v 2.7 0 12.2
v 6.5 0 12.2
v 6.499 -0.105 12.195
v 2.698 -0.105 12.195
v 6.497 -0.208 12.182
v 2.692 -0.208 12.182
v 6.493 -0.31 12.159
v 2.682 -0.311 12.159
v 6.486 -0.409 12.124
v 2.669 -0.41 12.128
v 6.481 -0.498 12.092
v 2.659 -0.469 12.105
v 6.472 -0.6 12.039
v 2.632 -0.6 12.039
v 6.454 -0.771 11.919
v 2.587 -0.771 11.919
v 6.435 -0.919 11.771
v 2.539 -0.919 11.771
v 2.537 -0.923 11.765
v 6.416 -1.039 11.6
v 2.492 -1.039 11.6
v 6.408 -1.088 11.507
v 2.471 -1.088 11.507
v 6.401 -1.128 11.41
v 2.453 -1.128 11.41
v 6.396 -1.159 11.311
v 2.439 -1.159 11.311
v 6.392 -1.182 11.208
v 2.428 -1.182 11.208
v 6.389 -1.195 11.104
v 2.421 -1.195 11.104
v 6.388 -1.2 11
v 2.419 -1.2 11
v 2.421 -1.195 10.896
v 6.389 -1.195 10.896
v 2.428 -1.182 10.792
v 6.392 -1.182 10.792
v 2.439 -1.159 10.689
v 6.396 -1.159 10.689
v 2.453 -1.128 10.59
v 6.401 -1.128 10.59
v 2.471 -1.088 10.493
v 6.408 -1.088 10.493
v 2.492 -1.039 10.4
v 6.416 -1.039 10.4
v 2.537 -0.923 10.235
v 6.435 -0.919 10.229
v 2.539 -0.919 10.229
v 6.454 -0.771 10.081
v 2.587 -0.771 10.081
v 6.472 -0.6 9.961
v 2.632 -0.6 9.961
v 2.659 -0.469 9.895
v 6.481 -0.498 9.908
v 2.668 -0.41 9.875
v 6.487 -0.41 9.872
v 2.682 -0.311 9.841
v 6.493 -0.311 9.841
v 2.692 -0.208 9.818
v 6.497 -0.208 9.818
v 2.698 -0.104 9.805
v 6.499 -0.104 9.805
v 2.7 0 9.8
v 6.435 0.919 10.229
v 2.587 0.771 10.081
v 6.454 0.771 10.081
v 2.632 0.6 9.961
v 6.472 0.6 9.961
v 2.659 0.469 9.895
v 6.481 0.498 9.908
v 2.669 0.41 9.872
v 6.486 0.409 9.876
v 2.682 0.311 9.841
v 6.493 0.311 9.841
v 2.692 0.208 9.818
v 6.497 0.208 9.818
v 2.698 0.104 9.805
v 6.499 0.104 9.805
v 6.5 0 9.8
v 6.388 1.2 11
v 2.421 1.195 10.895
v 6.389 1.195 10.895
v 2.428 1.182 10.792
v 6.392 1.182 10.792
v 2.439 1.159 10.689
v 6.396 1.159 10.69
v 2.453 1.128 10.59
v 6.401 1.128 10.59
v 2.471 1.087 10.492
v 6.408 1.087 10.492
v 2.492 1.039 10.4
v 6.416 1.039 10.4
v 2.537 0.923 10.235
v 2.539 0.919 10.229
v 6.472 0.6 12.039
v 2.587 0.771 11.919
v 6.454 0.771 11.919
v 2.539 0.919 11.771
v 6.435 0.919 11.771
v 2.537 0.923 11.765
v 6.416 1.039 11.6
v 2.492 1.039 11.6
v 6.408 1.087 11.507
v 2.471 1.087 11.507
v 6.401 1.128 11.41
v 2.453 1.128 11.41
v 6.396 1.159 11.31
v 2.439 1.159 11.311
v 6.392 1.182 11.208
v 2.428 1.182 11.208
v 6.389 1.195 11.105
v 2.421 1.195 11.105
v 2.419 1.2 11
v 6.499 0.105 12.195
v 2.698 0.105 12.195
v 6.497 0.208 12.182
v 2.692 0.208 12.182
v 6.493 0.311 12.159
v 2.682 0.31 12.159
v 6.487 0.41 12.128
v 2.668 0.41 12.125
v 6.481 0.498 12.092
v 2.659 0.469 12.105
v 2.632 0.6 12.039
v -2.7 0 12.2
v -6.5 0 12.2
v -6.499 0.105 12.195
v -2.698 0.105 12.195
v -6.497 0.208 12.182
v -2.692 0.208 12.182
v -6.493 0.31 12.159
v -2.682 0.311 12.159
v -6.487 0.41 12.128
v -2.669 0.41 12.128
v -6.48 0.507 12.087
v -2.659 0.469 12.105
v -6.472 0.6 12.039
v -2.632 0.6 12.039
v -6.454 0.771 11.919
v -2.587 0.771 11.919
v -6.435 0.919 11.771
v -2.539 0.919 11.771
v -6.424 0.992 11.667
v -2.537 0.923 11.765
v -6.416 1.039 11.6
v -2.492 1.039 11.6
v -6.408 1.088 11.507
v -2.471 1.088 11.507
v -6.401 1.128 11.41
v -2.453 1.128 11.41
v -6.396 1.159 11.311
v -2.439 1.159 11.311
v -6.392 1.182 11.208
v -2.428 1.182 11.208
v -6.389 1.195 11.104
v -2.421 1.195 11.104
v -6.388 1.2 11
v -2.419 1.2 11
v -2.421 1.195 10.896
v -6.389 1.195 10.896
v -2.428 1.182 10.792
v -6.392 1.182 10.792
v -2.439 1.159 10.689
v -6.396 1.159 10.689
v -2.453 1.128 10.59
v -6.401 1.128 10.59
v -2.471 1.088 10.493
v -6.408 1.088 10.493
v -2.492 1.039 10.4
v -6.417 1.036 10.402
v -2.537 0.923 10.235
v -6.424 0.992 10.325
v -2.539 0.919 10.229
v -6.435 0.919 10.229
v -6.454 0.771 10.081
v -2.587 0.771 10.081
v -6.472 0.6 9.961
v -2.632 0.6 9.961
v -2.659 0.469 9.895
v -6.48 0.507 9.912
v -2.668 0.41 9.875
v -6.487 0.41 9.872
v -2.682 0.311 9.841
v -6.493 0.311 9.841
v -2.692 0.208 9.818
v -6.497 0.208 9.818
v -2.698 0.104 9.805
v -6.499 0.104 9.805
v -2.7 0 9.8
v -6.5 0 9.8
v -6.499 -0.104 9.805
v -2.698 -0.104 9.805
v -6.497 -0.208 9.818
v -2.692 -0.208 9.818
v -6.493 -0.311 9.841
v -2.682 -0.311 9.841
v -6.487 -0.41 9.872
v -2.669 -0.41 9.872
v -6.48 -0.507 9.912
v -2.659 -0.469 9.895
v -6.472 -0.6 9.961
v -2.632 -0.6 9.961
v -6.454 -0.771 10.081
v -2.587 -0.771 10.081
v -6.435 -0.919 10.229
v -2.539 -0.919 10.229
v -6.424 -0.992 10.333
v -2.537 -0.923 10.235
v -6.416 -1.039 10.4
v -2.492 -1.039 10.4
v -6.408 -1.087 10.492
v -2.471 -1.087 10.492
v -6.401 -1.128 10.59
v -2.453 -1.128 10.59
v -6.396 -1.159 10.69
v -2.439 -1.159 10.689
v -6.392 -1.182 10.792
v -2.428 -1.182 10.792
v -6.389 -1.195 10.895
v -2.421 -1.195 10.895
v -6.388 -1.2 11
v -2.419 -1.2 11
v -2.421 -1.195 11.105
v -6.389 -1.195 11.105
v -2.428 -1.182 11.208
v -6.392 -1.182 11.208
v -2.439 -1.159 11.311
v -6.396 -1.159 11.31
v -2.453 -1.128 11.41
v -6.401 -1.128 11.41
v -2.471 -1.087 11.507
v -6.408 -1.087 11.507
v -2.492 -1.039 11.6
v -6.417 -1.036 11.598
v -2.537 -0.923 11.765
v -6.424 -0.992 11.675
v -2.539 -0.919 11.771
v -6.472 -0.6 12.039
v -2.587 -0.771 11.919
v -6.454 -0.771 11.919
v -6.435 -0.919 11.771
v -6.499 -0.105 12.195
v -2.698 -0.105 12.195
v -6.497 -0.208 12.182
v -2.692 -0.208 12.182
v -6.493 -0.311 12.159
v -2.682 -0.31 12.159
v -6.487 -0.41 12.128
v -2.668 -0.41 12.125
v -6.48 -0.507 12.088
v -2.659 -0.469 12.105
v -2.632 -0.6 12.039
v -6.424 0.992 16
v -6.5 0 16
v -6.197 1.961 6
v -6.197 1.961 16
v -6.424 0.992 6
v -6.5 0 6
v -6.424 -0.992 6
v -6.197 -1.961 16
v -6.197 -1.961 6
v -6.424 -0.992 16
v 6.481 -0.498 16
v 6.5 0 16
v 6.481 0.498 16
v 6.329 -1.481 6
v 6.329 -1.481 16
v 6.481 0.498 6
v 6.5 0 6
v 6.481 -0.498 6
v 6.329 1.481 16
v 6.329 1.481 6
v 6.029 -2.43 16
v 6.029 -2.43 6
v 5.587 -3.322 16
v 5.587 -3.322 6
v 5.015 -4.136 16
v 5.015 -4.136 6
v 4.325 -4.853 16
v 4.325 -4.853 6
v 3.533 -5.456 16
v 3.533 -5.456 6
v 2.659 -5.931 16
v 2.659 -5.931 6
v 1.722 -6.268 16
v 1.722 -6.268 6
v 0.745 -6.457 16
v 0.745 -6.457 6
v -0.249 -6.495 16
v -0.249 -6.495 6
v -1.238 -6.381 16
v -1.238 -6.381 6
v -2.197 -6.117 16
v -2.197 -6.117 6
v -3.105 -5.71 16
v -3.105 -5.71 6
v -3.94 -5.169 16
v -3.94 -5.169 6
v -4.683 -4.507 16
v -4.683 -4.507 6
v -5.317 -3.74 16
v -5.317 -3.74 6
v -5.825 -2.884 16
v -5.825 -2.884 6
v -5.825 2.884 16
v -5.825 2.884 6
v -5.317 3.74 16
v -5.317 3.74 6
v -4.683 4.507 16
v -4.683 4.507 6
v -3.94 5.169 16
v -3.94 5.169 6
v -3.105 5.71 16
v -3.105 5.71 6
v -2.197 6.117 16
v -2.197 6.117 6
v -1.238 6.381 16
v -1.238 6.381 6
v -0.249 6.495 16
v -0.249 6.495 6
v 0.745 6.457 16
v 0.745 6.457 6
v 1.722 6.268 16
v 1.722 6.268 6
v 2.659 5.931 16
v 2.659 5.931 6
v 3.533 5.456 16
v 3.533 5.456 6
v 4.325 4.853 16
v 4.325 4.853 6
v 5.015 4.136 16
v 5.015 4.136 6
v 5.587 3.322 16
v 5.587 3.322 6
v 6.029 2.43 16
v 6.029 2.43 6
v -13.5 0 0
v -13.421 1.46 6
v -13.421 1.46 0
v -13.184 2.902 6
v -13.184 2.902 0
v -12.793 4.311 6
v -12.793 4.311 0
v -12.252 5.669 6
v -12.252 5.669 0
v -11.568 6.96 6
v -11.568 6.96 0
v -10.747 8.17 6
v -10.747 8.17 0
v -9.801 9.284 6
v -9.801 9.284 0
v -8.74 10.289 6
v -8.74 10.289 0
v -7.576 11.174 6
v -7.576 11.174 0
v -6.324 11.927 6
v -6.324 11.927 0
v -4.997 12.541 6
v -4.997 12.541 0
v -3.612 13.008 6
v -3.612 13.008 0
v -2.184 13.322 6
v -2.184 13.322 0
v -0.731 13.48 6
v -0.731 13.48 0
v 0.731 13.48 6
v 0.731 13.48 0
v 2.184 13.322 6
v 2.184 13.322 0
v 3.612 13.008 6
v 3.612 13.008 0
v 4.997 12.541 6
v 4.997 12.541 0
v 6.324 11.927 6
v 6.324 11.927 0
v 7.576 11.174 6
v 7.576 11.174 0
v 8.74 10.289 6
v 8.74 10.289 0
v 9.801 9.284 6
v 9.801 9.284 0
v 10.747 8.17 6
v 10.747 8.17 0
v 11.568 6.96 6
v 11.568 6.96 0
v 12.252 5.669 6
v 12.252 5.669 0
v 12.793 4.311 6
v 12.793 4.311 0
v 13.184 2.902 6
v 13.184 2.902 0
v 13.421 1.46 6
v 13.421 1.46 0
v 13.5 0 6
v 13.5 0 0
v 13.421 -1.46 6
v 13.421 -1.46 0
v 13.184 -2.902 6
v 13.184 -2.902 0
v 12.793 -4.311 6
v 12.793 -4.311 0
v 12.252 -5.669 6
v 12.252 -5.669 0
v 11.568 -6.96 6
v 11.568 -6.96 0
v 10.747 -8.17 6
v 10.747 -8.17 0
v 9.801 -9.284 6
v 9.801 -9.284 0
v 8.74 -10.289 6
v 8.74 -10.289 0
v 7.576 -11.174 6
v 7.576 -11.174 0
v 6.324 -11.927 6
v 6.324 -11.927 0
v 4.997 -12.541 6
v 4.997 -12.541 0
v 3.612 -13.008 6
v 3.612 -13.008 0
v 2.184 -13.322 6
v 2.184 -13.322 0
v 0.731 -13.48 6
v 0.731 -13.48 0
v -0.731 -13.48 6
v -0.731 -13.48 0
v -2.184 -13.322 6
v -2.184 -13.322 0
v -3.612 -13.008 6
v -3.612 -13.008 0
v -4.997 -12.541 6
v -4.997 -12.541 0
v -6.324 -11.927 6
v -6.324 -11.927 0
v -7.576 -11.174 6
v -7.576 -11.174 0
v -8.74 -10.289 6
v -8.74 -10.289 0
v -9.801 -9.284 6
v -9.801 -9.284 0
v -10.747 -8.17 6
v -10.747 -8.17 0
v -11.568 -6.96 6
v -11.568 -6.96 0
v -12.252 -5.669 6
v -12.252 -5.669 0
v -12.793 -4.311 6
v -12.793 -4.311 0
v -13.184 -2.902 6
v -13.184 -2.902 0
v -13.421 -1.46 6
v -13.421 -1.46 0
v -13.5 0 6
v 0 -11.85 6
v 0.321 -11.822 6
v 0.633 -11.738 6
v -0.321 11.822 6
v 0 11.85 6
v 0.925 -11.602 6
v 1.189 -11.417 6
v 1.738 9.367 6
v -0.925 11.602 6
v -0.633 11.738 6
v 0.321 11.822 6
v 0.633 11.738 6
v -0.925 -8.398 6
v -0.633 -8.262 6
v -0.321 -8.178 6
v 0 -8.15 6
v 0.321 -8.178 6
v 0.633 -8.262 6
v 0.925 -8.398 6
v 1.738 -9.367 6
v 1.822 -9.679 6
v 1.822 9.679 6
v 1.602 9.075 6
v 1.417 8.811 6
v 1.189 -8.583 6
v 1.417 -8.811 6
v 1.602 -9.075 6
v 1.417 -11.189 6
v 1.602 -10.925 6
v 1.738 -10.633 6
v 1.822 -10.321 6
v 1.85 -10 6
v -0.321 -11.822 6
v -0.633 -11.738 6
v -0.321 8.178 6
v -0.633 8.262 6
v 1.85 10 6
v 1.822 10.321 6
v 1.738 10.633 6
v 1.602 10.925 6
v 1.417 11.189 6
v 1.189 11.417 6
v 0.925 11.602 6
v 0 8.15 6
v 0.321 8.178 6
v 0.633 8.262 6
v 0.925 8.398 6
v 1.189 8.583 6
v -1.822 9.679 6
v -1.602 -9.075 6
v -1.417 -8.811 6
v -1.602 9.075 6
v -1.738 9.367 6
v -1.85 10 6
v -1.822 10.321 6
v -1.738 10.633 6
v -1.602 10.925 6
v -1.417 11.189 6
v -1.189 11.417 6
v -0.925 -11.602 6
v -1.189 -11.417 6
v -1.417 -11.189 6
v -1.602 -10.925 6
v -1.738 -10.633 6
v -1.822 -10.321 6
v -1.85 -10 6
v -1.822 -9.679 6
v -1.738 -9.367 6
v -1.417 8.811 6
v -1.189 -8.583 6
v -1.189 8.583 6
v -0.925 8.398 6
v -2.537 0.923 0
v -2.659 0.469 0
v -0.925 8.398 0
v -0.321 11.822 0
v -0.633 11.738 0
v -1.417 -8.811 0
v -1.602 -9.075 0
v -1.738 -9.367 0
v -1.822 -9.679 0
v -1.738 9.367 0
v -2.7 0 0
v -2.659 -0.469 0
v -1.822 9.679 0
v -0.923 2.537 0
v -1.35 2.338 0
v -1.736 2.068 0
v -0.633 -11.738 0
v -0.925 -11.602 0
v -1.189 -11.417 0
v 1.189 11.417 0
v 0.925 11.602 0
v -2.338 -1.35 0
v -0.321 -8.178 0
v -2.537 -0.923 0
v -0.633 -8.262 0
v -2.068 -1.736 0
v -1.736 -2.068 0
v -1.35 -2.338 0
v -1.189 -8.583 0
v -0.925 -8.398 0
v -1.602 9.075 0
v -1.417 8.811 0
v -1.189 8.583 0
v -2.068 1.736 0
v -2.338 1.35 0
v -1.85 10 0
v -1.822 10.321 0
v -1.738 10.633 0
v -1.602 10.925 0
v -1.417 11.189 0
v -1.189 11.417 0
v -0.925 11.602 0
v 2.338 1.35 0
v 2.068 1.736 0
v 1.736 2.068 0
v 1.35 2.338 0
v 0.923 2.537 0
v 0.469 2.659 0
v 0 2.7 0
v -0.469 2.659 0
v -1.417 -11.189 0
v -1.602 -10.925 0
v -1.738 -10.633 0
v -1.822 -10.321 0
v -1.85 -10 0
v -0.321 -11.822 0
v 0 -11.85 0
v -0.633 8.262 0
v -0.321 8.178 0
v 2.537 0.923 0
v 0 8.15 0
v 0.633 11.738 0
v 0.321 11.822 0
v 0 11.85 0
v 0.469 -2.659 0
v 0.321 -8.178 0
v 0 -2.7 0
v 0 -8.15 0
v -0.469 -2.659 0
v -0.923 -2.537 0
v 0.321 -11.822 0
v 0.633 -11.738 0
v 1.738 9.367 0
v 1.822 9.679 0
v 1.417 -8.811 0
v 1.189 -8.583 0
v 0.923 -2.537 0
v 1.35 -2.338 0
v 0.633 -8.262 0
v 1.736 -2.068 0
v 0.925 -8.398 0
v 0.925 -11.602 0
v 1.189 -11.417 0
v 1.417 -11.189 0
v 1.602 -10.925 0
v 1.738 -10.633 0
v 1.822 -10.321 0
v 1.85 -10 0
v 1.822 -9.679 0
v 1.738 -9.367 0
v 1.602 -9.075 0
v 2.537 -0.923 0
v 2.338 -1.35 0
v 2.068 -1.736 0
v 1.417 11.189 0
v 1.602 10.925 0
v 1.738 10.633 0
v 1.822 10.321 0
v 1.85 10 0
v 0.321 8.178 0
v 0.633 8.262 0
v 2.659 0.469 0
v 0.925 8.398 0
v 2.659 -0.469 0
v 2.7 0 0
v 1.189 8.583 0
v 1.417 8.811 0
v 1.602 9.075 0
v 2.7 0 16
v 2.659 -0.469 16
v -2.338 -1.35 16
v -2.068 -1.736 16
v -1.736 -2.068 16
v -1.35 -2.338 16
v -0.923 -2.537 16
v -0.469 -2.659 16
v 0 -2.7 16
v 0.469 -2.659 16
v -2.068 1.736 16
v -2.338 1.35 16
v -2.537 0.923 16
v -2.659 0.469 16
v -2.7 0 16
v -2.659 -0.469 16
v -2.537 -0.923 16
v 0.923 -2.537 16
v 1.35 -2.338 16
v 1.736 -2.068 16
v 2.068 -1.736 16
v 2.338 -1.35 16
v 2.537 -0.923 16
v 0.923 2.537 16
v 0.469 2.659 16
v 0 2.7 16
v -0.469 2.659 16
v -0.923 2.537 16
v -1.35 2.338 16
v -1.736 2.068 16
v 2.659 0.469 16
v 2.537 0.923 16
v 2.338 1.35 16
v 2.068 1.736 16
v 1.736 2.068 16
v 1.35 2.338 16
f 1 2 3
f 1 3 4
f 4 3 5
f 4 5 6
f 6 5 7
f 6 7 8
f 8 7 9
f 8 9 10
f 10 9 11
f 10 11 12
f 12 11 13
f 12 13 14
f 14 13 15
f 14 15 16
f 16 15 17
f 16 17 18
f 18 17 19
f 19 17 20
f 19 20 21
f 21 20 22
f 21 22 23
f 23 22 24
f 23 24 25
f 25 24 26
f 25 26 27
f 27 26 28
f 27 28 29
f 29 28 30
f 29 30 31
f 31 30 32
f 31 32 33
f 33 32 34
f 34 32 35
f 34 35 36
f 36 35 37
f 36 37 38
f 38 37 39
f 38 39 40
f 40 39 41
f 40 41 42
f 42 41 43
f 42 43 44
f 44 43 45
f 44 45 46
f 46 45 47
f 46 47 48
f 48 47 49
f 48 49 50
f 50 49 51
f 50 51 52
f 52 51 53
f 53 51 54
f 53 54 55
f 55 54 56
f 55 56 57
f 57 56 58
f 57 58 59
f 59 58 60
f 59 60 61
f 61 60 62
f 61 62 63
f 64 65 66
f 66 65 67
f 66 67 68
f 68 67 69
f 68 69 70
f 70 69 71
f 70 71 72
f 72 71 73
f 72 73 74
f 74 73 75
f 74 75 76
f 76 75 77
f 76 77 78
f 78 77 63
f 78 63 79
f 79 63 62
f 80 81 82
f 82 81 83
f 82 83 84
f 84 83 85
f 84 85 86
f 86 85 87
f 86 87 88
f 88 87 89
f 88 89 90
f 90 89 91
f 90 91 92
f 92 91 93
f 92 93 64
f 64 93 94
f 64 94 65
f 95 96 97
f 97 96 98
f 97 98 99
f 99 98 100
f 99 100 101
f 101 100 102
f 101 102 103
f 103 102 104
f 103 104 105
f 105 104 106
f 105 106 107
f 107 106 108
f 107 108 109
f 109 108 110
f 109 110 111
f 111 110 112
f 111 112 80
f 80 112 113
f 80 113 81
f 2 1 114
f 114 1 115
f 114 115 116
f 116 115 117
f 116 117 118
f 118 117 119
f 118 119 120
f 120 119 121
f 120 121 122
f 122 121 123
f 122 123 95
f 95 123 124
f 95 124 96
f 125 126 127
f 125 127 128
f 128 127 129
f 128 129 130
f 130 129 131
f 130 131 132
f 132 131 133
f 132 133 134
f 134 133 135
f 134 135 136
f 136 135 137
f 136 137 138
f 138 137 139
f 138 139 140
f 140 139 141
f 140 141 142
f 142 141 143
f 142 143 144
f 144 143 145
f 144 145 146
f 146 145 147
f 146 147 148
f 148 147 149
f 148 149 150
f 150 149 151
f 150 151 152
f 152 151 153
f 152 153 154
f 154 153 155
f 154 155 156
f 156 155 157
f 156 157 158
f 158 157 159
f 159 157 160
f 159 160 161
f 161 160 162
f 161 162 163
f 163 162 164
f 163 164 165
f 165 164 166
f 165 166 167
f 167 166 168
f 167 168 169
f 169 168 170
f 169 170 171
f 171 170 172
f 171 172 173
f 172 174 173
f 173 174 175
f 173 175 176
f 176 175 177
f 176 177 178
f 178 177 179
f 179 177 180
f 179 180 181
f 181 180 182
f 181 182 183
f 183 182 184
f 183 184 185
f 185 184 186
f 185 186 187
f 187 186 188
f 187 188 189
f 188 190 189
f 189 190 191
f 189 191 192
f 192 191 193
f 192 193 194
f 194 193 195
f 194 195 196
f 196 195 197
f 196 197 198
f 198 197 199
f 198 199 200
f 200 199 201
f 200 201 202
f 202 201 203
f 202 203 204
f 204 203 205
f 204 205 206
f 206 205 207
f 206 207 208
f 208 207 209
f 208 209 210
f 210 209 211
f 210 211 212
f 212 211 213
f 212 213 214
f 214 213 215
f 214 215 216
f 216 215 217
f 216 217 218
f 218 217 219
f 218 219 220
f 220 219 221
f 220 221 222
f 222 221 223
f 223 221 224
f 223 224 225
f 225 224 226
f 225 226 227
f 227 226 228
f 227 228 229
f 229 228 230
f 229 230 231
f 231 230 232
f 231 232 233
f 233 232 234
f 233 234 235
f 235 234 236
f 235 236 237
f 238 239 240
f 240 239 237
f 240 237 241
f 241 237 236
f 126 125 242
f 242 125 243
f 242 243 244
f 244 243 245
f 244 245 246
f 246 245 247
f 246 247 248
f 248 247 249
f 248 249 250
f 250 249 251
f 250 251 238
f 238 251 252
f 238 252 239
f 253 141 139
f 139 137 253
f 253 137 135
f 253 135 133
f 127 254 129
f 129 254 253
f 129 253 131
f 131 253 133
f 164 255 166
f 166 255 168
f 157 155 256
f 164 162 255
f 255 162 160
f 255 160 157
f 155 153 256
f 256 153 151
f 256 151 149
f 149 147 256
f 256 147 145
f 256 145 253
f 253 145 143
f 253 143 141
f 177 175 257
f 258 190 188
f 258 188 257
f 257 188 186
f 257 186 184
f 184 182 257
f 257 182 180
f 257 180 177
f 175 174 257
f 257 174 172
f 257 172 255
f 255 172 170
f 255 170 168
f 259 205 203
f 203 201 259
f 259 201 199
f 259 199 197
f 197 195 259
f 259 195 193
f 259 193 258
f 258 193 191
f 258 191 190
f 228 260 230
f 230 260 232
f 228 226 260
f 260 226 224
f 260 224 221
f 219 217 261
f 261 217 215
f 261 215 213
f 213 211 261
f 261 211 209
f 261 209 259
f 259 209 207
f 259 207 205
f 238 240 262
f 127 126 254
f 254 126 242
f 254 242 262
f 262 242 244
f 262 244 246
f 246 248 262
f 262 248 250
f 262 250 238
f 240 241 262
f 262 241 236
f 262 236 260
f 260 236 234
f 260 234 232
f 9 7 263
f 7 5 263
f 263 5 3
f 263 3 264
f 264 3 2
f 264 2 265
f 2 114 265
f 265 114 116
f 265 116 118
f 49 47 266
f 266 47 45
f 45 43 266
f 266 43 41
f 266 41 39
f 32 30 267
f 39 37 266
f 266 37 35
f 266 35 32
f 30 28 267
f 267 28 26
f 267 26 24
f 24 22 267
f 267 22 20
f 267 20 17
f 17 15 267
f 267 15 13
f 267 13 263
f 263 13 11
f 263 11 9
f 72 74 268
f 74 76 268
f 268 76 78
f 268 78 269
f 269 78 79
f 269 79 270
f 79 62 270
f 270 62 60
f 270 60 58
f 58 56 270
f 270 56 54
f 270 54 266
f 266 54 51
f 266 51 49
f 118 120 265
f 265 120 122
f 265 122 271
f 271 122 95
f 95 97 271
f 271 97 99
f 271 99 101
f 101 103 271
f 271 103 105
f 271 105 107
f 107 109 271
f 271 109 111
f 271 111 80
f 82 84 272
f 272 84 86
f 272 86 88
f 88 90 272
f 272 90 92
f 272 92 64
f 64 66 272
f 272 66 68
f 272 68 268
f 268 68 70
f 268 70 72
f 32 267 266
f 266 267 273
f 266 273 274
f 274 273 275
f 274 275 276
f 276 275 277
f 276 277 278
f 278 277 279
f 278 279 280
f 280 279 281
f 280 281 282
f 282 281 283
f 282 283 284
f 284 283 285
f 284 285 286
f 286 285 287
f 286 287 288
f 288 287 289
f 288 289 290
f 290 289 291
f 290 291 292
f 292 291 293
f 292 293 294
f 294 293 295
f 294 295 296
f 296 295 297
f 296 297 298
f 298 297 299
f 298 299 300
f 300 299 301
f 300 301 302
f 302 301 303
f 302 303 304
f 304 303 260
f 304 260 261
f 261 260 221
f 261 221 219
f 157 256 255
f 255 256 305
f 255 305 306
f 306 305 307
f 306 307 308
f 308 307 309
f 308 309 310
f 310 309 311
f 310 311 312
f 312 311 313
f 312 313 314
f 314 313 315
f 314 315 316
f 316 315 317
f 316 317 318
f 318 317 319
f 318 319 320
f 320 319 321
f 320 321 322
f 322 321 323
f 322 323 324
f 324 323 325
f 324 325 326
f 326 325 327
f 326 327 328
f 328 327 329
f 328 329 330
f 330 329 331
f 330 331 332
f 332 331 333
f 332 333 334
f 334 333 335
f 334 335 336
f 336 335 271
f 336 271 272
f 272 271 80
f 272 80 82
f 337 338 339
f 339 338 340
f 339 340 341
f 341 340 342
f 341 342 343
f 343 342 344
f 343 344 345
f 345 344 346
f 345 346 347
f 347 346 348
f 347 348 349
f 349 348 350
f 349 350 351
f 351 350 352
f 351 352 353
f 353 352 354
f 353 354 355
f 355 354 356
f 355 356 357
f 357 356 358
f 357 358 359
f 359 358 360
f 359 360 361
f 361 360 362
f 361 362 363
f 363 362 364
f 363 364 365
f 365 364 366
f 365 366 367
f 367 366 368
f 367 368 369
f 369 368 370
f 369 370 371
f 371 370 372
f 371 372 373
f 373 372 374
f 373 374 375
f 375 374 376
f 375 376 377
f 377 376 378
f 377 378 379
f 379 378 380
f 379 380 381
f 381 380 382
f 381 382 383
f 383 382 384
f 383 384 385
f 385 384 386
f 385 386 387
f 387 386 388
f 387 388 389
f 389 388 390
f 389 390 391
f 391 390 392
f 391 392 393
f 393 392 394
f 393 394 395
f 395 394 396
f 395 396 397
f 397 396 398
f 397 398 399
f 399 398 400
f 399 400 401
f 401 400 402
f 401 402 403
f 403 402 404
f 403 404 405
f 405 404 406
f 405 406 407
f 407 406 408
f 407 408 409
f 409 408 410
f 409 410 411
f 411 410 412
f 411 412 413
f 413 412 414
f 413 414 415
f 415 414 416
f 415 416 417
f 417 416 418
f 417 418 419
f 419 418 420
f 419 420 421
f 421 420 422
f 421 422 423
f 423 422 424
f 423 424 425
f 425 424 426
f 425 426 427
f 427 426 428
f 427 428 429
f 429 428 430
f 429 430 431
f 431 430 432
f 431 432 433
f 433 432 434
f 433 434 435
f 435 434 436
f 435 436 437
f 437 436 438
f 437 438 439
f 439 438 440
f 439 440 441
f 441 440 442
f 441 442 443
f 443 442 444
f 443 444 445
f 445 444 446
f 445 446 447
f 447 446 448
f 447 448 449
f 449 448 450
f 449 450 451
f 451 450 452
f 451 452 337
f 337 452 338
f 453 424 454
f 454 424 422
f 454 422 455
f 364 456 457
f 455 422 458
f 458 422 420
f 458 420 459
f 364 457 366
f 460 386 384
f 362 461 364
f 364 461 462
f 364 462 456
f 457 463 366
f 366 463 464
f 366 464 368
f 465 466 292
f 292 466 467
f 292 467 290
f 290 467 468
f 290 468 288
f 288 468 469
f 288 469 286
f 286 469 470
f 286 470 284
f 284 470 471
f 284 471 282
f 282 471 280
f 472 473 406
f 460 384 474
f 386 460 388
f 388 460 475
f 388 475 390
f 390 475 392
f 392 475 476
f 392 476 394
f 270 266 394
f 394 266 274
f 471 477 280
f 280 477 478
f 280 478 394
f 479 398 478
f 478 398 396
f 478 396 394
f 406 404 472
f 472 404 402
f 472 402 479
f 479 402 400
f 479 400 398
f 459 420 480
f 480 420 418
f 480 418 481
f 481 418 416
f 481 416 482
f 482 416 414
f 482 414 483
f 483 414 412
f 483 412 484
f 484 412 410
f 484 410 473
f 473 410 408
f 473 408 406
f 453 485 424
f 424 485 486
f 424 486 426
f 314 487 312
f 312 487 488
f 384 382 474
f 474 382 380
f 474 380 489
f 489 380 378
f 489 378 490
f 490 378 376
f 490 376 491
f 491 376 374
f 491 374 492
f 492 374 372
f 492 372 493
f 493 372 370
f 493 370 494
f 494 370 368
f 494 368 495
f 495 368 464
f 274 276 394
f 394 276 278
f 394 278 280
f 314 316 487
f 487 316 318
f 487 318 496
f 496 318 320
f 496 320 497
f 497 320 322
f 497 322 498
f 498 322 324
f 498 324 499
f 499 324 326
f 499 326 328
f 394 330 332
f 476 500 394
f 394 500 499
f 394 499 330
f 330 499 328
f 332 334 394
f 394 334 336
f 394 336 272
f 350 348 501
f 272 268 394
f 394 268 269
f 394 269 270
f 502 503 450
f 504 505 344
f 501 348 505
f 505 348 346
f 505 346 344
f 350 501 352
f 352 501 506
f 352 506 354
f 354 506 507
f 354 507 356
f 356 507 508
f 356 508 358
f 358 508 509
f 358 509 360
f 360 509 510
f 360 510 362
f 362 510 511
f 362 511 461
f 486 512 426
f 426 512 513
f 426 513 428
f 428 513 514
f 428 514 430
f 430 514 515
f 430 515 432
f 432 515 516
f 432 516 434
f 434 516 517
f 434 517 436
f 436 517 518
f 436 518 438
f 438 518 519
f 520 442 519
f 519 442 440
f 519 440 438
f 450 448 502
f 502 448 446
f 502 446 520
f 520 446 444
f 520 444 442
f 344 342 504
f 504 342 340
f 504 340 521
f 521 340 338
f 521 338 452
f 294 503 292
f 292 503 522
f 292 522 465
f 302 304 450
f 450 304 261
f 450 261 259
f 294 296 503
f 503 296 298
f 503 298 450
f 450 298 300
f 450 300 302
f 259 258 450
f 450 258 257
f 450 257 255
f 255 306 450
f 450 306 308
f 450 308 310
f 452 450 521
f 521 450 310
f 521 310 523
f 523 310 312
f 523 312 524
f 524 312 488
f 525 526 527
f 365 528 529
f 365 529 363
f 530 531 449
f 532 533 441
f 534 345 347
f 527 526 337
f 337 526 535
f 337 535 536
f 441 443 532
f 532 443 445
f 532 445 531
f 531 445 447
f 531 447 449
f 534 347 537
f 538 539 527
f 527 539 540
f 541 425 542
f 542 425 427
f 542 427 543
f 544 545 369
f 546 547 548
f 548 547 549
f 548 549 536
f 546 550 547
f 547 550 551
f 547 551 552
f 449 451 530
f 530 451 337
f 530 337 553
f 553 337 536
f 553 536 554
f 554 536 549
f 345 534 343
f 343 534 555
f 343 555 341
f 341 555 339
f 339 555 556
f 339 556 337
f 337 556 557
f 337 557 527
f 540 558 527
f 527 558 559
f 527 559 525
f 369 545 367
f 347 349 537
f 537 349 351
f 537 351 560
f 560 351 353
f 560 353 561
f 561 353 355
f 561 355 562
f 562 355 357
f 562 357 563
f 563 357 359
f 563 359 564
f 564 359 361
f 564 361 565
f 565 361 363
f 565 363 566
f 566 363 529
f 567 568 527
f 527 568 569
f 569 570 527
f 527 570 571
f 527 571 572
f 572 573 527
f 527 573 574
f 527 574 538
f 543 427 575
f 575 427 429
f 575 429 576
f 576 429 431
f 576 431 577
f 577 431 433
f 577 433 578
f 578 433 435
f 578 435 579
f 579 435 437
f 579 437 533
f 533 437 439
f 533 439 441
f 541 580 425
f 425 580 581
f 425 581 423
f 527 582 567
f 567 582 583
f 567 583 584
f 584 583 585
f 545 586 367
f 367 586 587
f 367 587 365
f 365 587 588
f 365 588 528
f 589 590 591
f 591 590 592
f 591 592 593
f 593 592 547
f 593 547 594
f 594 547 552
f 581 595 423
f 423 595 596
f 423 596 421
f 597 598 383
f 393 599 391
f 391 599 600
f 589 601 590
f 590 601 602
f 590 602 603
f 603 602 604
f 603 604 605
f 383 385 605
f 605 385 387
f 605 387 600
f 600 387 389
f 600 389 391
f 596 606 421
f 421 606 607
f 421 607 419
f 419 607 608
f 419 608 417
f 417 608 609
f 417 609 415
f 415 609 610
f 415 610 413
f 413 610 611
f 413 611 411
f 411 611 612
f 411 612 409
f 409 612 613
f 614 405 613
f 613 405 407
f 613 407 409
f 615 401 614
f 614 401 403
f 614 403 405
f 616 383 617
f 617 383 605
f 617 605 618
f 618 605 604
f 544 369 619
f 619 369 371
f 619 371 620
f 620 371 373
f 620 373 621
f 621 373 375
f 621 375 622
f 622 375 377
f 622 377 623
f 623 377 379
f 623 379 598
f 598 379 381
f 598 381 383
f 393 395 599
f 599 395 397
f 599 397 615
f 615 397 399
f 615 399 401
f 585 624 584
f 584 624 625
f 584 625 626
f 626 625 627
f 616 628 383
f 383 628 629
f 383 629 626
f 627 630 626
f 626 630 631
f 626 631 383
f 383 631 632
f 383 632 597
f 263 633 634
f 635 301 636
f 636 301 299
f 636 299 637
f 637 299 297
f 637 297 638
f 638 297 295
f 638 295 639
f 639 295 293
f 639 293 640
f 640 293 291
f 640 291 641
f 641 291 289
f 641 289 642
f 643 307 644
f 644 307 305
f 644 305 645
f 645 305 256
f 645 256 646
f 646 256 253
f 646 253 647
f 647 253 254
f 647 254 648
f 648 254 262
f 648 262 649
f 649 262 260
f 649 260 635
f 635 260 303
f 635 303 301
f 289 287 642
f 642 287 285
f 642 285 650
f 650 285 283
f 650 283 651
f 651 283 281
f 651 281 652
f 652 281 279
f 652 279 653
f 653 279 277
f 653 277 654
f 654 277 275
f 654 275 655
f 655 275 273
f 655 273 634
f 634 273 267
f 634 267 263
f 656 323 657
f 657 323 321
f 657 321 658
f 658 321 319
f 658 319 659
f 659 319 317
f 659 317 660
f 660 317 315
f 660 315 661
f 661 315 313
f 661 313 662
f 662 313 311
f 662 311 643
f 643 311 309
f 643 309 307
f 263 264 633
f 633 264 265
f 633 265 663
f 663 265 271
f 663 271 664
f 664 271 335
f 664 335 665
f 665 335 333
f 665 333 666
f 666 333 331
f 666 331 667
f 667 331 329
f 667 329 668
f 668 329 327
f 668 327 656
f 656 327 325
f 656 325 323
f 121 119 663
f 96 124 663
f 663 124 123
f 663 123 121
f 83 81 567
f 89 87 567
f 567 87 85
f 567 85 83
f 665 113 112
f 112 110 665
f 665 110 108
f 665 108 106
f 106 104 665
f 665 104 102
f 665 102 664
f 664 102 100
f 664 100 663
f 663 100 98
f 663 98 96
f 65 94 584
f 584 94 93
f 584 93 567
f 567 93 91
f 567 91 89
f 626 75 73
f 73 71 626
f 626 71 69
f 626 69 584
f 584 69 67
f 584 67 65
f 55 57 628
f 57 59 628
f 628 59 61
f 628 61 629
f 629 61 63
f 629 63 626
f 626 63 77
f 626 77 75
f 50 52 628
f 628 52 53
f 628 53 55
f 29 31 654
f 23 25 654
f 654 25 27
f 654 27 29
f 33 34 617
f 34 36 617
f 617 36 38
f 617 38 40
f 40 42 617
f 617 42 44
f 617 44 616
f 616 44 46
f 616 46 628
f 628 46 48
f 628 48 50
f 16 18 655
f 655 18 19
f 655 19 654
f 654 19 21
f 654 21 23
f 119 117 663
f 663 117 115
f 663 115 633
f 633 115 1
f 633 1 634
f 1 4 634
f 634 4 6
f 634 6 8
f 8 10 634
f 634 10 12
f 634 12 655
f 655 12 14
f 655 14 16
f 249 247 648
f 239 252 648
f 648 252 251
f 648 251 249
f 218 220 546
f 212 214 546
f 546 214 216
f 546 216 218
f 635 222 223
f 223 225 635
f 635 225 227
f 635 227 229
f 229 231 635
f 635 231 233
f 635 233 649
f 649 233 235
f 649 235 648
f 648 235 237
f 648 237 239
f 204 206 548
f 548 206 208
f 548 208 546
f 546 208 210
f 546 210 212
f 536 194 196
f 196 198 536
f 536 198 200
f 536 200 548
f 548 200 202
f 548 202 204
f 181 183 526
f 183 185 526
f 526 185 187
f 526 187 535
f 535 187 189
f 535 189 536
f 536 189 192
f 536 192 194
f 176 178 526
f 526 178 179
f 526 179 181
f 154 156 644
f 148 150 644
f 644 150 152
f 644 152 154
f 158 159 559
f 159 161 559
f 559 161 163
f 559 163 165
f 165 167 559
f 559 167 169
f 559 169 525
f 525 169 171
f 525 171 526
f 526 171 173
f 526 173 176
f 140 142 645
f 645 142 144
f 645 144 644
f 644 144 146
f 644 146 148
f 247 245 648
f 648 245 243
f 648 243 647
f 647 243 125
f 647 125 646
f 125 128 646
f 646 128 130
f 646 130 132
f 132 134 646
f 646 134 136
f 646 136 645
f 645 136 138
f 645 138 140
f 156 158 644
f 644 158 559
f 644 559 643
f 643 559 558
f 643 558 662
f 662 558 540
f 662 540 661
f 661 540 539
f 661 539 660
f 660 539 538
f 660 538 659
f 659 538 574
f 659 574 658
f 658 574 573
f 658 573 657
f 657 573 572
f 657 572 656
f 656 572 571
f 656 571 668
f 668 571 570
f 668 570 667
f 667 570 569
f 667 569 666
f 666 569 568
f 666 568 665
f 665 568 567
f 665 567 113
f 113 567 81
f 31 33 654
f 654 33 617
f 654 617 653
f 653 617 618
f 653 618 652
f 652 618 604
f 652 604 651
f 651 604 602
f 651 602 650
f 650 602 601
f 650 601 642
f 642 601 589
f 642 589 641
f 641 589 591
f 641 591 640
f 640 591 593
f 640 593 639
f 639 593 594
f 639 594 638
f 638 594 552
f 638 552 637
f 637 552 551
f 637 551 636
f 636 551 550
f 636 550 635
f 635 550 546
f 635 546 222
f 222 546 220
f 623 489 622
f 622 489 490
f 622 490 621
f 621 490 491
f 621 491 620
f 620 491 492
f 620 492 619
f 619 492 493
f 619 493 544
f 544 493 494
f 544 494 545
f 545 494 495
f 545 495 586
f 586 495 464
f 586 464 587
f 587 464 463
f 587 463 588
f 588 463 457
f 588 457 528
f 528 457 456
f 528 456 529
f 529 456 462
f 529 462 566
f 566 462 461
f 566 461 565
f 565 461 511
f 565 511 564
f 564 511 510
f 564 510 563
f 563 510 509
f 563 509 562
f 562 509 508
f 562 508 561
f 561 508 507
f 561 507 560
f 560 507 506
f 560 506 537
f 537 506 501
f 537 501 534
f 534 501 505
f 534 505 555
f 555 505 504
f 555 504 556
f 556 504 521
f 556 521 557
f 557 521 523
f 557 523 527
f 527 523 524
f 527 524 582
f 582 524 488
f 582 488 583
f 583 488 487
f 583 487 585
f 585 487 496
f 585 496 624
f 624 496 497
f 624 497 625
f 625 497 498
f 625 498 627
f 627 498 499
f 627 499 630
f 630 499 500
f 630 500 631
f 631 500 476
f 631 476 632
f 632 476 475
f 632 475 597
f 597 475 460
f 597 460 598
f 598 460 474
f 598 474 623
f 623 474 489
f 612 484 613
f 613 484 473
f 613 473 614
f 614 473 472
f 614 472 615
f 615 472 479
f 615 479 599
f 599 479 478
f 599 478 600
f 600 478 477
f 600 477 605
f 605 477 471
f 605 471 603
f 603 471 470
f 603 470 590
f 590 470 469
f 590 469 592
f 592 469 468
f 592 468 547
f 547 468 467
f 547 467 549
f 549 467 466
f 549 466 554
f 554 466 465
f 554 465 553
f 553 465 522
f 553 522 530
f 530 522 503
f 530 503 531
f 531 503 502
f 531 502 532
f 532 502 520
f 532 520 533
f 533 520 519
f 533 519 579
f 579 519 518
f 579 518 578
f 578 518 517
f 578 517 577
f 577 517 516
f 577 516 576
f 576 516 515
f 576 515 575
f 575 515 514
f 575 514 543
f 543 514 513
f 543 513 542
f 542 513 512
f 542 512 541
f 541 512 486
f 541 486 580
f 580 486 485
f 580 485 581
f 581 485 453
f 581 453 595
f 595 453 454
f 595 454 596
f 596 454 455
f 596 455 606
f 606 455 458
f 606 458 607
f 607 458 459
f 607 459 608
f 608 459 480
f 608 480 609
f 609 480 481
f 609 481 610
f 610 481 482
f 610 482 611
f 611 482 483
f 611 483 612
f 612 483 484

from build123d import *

# Parameters (mm, degrees)
SKETCH2_R               = 13.5
BOSS_EXTRUDE1_DEPTH     = 6
SKETCH3_R               = 6.5
SKETCH3_R_2             = 2.5
BOSS_EXTRUDE2_DEPTH     = 10
CUT_EXTRUDE1_DEPTH      = 25
CUT_EXTRUDE1_DEPTH_BACK = 25
SKETCH4_R               = 1.2
CUT_EXTRUDE3_DEPTH      = 50
CUT_EXTRUDE3_DEPTH_BACK = 20
SKETCH6_R               = 2.7
SKETCH5_R               = 1.85
CUT_EXTRUDE4_DEPTH      = 10


with BuildPart() as part:
    # Sketch2 → Boss-Extrude1 (new body)
    with BuildSketch(Plane.XY):
        Circle(SKETCH2_R)
    extrude(amount=BOSS_EXTRUDE1_DEPTH)

    # Sketch3 → Boss-Extrude2 (add)
    with BuildSketch(Plane.XY.offset(6)):
        Circle(SKETCH3_R)
        Circle(SKETCH3_R_2, mode=Mode.SUBTRACT)
    extrude(amount=BOSS_EXTRUDE2_DEPTH)

    # Sketch4 → Cut-Extrude1 (cut, two sides: drawn at the far end of the back side and taken through both)
    with BuildSketch(Plane(origin=(0, 0, 0), x_dir=(0, -1, 0), z_dir=(1, 0, 0)).offset(-CUT_EXTRUDE1_DEPTH_BACK)):
        with Locations((0, -11)):
            Circle(SKETCH4_R)
    extrude(amount=CUT_EXTRUDE1_DEPTH + CUT_EXTRUDE1_DEPTH_BACK, mode=Mode.SUBTRACT)

    # Sketch6 → Cut-Extrude3 (cut, two sides: drawn at the far end of the back side and taken through both)
    with BuildSketch(Plane.XY.offset(6).offset(-CUT_EXTRUDE3_DEPTH_BACK)):
        Circle(SKETCH6_R)
    extrude(amount=CUT_EXTRUDE3_DEPTH + CUT_EXTRUDE3_DEPTH_BACK, mode=Mode.SUBTRACT)

    # Sketch5 → Cut-Extrude4 (cut)
    with BuildSketch(Plane.XY.offset(6)):
        with Locations((0, 10)):
            Circle(SKETCH5_R)
    cut_extrude4 = extrude(amount=-CUT_EXTRUDE4_DEPTH, mode=Mode.SUBTRACT)

    # Mirror1: Cut-Extrude4 across plane
    add(cut_extrude4.mirror(Plane.ZX), mode=Mode.SUBTRACT)


solid = part.part
